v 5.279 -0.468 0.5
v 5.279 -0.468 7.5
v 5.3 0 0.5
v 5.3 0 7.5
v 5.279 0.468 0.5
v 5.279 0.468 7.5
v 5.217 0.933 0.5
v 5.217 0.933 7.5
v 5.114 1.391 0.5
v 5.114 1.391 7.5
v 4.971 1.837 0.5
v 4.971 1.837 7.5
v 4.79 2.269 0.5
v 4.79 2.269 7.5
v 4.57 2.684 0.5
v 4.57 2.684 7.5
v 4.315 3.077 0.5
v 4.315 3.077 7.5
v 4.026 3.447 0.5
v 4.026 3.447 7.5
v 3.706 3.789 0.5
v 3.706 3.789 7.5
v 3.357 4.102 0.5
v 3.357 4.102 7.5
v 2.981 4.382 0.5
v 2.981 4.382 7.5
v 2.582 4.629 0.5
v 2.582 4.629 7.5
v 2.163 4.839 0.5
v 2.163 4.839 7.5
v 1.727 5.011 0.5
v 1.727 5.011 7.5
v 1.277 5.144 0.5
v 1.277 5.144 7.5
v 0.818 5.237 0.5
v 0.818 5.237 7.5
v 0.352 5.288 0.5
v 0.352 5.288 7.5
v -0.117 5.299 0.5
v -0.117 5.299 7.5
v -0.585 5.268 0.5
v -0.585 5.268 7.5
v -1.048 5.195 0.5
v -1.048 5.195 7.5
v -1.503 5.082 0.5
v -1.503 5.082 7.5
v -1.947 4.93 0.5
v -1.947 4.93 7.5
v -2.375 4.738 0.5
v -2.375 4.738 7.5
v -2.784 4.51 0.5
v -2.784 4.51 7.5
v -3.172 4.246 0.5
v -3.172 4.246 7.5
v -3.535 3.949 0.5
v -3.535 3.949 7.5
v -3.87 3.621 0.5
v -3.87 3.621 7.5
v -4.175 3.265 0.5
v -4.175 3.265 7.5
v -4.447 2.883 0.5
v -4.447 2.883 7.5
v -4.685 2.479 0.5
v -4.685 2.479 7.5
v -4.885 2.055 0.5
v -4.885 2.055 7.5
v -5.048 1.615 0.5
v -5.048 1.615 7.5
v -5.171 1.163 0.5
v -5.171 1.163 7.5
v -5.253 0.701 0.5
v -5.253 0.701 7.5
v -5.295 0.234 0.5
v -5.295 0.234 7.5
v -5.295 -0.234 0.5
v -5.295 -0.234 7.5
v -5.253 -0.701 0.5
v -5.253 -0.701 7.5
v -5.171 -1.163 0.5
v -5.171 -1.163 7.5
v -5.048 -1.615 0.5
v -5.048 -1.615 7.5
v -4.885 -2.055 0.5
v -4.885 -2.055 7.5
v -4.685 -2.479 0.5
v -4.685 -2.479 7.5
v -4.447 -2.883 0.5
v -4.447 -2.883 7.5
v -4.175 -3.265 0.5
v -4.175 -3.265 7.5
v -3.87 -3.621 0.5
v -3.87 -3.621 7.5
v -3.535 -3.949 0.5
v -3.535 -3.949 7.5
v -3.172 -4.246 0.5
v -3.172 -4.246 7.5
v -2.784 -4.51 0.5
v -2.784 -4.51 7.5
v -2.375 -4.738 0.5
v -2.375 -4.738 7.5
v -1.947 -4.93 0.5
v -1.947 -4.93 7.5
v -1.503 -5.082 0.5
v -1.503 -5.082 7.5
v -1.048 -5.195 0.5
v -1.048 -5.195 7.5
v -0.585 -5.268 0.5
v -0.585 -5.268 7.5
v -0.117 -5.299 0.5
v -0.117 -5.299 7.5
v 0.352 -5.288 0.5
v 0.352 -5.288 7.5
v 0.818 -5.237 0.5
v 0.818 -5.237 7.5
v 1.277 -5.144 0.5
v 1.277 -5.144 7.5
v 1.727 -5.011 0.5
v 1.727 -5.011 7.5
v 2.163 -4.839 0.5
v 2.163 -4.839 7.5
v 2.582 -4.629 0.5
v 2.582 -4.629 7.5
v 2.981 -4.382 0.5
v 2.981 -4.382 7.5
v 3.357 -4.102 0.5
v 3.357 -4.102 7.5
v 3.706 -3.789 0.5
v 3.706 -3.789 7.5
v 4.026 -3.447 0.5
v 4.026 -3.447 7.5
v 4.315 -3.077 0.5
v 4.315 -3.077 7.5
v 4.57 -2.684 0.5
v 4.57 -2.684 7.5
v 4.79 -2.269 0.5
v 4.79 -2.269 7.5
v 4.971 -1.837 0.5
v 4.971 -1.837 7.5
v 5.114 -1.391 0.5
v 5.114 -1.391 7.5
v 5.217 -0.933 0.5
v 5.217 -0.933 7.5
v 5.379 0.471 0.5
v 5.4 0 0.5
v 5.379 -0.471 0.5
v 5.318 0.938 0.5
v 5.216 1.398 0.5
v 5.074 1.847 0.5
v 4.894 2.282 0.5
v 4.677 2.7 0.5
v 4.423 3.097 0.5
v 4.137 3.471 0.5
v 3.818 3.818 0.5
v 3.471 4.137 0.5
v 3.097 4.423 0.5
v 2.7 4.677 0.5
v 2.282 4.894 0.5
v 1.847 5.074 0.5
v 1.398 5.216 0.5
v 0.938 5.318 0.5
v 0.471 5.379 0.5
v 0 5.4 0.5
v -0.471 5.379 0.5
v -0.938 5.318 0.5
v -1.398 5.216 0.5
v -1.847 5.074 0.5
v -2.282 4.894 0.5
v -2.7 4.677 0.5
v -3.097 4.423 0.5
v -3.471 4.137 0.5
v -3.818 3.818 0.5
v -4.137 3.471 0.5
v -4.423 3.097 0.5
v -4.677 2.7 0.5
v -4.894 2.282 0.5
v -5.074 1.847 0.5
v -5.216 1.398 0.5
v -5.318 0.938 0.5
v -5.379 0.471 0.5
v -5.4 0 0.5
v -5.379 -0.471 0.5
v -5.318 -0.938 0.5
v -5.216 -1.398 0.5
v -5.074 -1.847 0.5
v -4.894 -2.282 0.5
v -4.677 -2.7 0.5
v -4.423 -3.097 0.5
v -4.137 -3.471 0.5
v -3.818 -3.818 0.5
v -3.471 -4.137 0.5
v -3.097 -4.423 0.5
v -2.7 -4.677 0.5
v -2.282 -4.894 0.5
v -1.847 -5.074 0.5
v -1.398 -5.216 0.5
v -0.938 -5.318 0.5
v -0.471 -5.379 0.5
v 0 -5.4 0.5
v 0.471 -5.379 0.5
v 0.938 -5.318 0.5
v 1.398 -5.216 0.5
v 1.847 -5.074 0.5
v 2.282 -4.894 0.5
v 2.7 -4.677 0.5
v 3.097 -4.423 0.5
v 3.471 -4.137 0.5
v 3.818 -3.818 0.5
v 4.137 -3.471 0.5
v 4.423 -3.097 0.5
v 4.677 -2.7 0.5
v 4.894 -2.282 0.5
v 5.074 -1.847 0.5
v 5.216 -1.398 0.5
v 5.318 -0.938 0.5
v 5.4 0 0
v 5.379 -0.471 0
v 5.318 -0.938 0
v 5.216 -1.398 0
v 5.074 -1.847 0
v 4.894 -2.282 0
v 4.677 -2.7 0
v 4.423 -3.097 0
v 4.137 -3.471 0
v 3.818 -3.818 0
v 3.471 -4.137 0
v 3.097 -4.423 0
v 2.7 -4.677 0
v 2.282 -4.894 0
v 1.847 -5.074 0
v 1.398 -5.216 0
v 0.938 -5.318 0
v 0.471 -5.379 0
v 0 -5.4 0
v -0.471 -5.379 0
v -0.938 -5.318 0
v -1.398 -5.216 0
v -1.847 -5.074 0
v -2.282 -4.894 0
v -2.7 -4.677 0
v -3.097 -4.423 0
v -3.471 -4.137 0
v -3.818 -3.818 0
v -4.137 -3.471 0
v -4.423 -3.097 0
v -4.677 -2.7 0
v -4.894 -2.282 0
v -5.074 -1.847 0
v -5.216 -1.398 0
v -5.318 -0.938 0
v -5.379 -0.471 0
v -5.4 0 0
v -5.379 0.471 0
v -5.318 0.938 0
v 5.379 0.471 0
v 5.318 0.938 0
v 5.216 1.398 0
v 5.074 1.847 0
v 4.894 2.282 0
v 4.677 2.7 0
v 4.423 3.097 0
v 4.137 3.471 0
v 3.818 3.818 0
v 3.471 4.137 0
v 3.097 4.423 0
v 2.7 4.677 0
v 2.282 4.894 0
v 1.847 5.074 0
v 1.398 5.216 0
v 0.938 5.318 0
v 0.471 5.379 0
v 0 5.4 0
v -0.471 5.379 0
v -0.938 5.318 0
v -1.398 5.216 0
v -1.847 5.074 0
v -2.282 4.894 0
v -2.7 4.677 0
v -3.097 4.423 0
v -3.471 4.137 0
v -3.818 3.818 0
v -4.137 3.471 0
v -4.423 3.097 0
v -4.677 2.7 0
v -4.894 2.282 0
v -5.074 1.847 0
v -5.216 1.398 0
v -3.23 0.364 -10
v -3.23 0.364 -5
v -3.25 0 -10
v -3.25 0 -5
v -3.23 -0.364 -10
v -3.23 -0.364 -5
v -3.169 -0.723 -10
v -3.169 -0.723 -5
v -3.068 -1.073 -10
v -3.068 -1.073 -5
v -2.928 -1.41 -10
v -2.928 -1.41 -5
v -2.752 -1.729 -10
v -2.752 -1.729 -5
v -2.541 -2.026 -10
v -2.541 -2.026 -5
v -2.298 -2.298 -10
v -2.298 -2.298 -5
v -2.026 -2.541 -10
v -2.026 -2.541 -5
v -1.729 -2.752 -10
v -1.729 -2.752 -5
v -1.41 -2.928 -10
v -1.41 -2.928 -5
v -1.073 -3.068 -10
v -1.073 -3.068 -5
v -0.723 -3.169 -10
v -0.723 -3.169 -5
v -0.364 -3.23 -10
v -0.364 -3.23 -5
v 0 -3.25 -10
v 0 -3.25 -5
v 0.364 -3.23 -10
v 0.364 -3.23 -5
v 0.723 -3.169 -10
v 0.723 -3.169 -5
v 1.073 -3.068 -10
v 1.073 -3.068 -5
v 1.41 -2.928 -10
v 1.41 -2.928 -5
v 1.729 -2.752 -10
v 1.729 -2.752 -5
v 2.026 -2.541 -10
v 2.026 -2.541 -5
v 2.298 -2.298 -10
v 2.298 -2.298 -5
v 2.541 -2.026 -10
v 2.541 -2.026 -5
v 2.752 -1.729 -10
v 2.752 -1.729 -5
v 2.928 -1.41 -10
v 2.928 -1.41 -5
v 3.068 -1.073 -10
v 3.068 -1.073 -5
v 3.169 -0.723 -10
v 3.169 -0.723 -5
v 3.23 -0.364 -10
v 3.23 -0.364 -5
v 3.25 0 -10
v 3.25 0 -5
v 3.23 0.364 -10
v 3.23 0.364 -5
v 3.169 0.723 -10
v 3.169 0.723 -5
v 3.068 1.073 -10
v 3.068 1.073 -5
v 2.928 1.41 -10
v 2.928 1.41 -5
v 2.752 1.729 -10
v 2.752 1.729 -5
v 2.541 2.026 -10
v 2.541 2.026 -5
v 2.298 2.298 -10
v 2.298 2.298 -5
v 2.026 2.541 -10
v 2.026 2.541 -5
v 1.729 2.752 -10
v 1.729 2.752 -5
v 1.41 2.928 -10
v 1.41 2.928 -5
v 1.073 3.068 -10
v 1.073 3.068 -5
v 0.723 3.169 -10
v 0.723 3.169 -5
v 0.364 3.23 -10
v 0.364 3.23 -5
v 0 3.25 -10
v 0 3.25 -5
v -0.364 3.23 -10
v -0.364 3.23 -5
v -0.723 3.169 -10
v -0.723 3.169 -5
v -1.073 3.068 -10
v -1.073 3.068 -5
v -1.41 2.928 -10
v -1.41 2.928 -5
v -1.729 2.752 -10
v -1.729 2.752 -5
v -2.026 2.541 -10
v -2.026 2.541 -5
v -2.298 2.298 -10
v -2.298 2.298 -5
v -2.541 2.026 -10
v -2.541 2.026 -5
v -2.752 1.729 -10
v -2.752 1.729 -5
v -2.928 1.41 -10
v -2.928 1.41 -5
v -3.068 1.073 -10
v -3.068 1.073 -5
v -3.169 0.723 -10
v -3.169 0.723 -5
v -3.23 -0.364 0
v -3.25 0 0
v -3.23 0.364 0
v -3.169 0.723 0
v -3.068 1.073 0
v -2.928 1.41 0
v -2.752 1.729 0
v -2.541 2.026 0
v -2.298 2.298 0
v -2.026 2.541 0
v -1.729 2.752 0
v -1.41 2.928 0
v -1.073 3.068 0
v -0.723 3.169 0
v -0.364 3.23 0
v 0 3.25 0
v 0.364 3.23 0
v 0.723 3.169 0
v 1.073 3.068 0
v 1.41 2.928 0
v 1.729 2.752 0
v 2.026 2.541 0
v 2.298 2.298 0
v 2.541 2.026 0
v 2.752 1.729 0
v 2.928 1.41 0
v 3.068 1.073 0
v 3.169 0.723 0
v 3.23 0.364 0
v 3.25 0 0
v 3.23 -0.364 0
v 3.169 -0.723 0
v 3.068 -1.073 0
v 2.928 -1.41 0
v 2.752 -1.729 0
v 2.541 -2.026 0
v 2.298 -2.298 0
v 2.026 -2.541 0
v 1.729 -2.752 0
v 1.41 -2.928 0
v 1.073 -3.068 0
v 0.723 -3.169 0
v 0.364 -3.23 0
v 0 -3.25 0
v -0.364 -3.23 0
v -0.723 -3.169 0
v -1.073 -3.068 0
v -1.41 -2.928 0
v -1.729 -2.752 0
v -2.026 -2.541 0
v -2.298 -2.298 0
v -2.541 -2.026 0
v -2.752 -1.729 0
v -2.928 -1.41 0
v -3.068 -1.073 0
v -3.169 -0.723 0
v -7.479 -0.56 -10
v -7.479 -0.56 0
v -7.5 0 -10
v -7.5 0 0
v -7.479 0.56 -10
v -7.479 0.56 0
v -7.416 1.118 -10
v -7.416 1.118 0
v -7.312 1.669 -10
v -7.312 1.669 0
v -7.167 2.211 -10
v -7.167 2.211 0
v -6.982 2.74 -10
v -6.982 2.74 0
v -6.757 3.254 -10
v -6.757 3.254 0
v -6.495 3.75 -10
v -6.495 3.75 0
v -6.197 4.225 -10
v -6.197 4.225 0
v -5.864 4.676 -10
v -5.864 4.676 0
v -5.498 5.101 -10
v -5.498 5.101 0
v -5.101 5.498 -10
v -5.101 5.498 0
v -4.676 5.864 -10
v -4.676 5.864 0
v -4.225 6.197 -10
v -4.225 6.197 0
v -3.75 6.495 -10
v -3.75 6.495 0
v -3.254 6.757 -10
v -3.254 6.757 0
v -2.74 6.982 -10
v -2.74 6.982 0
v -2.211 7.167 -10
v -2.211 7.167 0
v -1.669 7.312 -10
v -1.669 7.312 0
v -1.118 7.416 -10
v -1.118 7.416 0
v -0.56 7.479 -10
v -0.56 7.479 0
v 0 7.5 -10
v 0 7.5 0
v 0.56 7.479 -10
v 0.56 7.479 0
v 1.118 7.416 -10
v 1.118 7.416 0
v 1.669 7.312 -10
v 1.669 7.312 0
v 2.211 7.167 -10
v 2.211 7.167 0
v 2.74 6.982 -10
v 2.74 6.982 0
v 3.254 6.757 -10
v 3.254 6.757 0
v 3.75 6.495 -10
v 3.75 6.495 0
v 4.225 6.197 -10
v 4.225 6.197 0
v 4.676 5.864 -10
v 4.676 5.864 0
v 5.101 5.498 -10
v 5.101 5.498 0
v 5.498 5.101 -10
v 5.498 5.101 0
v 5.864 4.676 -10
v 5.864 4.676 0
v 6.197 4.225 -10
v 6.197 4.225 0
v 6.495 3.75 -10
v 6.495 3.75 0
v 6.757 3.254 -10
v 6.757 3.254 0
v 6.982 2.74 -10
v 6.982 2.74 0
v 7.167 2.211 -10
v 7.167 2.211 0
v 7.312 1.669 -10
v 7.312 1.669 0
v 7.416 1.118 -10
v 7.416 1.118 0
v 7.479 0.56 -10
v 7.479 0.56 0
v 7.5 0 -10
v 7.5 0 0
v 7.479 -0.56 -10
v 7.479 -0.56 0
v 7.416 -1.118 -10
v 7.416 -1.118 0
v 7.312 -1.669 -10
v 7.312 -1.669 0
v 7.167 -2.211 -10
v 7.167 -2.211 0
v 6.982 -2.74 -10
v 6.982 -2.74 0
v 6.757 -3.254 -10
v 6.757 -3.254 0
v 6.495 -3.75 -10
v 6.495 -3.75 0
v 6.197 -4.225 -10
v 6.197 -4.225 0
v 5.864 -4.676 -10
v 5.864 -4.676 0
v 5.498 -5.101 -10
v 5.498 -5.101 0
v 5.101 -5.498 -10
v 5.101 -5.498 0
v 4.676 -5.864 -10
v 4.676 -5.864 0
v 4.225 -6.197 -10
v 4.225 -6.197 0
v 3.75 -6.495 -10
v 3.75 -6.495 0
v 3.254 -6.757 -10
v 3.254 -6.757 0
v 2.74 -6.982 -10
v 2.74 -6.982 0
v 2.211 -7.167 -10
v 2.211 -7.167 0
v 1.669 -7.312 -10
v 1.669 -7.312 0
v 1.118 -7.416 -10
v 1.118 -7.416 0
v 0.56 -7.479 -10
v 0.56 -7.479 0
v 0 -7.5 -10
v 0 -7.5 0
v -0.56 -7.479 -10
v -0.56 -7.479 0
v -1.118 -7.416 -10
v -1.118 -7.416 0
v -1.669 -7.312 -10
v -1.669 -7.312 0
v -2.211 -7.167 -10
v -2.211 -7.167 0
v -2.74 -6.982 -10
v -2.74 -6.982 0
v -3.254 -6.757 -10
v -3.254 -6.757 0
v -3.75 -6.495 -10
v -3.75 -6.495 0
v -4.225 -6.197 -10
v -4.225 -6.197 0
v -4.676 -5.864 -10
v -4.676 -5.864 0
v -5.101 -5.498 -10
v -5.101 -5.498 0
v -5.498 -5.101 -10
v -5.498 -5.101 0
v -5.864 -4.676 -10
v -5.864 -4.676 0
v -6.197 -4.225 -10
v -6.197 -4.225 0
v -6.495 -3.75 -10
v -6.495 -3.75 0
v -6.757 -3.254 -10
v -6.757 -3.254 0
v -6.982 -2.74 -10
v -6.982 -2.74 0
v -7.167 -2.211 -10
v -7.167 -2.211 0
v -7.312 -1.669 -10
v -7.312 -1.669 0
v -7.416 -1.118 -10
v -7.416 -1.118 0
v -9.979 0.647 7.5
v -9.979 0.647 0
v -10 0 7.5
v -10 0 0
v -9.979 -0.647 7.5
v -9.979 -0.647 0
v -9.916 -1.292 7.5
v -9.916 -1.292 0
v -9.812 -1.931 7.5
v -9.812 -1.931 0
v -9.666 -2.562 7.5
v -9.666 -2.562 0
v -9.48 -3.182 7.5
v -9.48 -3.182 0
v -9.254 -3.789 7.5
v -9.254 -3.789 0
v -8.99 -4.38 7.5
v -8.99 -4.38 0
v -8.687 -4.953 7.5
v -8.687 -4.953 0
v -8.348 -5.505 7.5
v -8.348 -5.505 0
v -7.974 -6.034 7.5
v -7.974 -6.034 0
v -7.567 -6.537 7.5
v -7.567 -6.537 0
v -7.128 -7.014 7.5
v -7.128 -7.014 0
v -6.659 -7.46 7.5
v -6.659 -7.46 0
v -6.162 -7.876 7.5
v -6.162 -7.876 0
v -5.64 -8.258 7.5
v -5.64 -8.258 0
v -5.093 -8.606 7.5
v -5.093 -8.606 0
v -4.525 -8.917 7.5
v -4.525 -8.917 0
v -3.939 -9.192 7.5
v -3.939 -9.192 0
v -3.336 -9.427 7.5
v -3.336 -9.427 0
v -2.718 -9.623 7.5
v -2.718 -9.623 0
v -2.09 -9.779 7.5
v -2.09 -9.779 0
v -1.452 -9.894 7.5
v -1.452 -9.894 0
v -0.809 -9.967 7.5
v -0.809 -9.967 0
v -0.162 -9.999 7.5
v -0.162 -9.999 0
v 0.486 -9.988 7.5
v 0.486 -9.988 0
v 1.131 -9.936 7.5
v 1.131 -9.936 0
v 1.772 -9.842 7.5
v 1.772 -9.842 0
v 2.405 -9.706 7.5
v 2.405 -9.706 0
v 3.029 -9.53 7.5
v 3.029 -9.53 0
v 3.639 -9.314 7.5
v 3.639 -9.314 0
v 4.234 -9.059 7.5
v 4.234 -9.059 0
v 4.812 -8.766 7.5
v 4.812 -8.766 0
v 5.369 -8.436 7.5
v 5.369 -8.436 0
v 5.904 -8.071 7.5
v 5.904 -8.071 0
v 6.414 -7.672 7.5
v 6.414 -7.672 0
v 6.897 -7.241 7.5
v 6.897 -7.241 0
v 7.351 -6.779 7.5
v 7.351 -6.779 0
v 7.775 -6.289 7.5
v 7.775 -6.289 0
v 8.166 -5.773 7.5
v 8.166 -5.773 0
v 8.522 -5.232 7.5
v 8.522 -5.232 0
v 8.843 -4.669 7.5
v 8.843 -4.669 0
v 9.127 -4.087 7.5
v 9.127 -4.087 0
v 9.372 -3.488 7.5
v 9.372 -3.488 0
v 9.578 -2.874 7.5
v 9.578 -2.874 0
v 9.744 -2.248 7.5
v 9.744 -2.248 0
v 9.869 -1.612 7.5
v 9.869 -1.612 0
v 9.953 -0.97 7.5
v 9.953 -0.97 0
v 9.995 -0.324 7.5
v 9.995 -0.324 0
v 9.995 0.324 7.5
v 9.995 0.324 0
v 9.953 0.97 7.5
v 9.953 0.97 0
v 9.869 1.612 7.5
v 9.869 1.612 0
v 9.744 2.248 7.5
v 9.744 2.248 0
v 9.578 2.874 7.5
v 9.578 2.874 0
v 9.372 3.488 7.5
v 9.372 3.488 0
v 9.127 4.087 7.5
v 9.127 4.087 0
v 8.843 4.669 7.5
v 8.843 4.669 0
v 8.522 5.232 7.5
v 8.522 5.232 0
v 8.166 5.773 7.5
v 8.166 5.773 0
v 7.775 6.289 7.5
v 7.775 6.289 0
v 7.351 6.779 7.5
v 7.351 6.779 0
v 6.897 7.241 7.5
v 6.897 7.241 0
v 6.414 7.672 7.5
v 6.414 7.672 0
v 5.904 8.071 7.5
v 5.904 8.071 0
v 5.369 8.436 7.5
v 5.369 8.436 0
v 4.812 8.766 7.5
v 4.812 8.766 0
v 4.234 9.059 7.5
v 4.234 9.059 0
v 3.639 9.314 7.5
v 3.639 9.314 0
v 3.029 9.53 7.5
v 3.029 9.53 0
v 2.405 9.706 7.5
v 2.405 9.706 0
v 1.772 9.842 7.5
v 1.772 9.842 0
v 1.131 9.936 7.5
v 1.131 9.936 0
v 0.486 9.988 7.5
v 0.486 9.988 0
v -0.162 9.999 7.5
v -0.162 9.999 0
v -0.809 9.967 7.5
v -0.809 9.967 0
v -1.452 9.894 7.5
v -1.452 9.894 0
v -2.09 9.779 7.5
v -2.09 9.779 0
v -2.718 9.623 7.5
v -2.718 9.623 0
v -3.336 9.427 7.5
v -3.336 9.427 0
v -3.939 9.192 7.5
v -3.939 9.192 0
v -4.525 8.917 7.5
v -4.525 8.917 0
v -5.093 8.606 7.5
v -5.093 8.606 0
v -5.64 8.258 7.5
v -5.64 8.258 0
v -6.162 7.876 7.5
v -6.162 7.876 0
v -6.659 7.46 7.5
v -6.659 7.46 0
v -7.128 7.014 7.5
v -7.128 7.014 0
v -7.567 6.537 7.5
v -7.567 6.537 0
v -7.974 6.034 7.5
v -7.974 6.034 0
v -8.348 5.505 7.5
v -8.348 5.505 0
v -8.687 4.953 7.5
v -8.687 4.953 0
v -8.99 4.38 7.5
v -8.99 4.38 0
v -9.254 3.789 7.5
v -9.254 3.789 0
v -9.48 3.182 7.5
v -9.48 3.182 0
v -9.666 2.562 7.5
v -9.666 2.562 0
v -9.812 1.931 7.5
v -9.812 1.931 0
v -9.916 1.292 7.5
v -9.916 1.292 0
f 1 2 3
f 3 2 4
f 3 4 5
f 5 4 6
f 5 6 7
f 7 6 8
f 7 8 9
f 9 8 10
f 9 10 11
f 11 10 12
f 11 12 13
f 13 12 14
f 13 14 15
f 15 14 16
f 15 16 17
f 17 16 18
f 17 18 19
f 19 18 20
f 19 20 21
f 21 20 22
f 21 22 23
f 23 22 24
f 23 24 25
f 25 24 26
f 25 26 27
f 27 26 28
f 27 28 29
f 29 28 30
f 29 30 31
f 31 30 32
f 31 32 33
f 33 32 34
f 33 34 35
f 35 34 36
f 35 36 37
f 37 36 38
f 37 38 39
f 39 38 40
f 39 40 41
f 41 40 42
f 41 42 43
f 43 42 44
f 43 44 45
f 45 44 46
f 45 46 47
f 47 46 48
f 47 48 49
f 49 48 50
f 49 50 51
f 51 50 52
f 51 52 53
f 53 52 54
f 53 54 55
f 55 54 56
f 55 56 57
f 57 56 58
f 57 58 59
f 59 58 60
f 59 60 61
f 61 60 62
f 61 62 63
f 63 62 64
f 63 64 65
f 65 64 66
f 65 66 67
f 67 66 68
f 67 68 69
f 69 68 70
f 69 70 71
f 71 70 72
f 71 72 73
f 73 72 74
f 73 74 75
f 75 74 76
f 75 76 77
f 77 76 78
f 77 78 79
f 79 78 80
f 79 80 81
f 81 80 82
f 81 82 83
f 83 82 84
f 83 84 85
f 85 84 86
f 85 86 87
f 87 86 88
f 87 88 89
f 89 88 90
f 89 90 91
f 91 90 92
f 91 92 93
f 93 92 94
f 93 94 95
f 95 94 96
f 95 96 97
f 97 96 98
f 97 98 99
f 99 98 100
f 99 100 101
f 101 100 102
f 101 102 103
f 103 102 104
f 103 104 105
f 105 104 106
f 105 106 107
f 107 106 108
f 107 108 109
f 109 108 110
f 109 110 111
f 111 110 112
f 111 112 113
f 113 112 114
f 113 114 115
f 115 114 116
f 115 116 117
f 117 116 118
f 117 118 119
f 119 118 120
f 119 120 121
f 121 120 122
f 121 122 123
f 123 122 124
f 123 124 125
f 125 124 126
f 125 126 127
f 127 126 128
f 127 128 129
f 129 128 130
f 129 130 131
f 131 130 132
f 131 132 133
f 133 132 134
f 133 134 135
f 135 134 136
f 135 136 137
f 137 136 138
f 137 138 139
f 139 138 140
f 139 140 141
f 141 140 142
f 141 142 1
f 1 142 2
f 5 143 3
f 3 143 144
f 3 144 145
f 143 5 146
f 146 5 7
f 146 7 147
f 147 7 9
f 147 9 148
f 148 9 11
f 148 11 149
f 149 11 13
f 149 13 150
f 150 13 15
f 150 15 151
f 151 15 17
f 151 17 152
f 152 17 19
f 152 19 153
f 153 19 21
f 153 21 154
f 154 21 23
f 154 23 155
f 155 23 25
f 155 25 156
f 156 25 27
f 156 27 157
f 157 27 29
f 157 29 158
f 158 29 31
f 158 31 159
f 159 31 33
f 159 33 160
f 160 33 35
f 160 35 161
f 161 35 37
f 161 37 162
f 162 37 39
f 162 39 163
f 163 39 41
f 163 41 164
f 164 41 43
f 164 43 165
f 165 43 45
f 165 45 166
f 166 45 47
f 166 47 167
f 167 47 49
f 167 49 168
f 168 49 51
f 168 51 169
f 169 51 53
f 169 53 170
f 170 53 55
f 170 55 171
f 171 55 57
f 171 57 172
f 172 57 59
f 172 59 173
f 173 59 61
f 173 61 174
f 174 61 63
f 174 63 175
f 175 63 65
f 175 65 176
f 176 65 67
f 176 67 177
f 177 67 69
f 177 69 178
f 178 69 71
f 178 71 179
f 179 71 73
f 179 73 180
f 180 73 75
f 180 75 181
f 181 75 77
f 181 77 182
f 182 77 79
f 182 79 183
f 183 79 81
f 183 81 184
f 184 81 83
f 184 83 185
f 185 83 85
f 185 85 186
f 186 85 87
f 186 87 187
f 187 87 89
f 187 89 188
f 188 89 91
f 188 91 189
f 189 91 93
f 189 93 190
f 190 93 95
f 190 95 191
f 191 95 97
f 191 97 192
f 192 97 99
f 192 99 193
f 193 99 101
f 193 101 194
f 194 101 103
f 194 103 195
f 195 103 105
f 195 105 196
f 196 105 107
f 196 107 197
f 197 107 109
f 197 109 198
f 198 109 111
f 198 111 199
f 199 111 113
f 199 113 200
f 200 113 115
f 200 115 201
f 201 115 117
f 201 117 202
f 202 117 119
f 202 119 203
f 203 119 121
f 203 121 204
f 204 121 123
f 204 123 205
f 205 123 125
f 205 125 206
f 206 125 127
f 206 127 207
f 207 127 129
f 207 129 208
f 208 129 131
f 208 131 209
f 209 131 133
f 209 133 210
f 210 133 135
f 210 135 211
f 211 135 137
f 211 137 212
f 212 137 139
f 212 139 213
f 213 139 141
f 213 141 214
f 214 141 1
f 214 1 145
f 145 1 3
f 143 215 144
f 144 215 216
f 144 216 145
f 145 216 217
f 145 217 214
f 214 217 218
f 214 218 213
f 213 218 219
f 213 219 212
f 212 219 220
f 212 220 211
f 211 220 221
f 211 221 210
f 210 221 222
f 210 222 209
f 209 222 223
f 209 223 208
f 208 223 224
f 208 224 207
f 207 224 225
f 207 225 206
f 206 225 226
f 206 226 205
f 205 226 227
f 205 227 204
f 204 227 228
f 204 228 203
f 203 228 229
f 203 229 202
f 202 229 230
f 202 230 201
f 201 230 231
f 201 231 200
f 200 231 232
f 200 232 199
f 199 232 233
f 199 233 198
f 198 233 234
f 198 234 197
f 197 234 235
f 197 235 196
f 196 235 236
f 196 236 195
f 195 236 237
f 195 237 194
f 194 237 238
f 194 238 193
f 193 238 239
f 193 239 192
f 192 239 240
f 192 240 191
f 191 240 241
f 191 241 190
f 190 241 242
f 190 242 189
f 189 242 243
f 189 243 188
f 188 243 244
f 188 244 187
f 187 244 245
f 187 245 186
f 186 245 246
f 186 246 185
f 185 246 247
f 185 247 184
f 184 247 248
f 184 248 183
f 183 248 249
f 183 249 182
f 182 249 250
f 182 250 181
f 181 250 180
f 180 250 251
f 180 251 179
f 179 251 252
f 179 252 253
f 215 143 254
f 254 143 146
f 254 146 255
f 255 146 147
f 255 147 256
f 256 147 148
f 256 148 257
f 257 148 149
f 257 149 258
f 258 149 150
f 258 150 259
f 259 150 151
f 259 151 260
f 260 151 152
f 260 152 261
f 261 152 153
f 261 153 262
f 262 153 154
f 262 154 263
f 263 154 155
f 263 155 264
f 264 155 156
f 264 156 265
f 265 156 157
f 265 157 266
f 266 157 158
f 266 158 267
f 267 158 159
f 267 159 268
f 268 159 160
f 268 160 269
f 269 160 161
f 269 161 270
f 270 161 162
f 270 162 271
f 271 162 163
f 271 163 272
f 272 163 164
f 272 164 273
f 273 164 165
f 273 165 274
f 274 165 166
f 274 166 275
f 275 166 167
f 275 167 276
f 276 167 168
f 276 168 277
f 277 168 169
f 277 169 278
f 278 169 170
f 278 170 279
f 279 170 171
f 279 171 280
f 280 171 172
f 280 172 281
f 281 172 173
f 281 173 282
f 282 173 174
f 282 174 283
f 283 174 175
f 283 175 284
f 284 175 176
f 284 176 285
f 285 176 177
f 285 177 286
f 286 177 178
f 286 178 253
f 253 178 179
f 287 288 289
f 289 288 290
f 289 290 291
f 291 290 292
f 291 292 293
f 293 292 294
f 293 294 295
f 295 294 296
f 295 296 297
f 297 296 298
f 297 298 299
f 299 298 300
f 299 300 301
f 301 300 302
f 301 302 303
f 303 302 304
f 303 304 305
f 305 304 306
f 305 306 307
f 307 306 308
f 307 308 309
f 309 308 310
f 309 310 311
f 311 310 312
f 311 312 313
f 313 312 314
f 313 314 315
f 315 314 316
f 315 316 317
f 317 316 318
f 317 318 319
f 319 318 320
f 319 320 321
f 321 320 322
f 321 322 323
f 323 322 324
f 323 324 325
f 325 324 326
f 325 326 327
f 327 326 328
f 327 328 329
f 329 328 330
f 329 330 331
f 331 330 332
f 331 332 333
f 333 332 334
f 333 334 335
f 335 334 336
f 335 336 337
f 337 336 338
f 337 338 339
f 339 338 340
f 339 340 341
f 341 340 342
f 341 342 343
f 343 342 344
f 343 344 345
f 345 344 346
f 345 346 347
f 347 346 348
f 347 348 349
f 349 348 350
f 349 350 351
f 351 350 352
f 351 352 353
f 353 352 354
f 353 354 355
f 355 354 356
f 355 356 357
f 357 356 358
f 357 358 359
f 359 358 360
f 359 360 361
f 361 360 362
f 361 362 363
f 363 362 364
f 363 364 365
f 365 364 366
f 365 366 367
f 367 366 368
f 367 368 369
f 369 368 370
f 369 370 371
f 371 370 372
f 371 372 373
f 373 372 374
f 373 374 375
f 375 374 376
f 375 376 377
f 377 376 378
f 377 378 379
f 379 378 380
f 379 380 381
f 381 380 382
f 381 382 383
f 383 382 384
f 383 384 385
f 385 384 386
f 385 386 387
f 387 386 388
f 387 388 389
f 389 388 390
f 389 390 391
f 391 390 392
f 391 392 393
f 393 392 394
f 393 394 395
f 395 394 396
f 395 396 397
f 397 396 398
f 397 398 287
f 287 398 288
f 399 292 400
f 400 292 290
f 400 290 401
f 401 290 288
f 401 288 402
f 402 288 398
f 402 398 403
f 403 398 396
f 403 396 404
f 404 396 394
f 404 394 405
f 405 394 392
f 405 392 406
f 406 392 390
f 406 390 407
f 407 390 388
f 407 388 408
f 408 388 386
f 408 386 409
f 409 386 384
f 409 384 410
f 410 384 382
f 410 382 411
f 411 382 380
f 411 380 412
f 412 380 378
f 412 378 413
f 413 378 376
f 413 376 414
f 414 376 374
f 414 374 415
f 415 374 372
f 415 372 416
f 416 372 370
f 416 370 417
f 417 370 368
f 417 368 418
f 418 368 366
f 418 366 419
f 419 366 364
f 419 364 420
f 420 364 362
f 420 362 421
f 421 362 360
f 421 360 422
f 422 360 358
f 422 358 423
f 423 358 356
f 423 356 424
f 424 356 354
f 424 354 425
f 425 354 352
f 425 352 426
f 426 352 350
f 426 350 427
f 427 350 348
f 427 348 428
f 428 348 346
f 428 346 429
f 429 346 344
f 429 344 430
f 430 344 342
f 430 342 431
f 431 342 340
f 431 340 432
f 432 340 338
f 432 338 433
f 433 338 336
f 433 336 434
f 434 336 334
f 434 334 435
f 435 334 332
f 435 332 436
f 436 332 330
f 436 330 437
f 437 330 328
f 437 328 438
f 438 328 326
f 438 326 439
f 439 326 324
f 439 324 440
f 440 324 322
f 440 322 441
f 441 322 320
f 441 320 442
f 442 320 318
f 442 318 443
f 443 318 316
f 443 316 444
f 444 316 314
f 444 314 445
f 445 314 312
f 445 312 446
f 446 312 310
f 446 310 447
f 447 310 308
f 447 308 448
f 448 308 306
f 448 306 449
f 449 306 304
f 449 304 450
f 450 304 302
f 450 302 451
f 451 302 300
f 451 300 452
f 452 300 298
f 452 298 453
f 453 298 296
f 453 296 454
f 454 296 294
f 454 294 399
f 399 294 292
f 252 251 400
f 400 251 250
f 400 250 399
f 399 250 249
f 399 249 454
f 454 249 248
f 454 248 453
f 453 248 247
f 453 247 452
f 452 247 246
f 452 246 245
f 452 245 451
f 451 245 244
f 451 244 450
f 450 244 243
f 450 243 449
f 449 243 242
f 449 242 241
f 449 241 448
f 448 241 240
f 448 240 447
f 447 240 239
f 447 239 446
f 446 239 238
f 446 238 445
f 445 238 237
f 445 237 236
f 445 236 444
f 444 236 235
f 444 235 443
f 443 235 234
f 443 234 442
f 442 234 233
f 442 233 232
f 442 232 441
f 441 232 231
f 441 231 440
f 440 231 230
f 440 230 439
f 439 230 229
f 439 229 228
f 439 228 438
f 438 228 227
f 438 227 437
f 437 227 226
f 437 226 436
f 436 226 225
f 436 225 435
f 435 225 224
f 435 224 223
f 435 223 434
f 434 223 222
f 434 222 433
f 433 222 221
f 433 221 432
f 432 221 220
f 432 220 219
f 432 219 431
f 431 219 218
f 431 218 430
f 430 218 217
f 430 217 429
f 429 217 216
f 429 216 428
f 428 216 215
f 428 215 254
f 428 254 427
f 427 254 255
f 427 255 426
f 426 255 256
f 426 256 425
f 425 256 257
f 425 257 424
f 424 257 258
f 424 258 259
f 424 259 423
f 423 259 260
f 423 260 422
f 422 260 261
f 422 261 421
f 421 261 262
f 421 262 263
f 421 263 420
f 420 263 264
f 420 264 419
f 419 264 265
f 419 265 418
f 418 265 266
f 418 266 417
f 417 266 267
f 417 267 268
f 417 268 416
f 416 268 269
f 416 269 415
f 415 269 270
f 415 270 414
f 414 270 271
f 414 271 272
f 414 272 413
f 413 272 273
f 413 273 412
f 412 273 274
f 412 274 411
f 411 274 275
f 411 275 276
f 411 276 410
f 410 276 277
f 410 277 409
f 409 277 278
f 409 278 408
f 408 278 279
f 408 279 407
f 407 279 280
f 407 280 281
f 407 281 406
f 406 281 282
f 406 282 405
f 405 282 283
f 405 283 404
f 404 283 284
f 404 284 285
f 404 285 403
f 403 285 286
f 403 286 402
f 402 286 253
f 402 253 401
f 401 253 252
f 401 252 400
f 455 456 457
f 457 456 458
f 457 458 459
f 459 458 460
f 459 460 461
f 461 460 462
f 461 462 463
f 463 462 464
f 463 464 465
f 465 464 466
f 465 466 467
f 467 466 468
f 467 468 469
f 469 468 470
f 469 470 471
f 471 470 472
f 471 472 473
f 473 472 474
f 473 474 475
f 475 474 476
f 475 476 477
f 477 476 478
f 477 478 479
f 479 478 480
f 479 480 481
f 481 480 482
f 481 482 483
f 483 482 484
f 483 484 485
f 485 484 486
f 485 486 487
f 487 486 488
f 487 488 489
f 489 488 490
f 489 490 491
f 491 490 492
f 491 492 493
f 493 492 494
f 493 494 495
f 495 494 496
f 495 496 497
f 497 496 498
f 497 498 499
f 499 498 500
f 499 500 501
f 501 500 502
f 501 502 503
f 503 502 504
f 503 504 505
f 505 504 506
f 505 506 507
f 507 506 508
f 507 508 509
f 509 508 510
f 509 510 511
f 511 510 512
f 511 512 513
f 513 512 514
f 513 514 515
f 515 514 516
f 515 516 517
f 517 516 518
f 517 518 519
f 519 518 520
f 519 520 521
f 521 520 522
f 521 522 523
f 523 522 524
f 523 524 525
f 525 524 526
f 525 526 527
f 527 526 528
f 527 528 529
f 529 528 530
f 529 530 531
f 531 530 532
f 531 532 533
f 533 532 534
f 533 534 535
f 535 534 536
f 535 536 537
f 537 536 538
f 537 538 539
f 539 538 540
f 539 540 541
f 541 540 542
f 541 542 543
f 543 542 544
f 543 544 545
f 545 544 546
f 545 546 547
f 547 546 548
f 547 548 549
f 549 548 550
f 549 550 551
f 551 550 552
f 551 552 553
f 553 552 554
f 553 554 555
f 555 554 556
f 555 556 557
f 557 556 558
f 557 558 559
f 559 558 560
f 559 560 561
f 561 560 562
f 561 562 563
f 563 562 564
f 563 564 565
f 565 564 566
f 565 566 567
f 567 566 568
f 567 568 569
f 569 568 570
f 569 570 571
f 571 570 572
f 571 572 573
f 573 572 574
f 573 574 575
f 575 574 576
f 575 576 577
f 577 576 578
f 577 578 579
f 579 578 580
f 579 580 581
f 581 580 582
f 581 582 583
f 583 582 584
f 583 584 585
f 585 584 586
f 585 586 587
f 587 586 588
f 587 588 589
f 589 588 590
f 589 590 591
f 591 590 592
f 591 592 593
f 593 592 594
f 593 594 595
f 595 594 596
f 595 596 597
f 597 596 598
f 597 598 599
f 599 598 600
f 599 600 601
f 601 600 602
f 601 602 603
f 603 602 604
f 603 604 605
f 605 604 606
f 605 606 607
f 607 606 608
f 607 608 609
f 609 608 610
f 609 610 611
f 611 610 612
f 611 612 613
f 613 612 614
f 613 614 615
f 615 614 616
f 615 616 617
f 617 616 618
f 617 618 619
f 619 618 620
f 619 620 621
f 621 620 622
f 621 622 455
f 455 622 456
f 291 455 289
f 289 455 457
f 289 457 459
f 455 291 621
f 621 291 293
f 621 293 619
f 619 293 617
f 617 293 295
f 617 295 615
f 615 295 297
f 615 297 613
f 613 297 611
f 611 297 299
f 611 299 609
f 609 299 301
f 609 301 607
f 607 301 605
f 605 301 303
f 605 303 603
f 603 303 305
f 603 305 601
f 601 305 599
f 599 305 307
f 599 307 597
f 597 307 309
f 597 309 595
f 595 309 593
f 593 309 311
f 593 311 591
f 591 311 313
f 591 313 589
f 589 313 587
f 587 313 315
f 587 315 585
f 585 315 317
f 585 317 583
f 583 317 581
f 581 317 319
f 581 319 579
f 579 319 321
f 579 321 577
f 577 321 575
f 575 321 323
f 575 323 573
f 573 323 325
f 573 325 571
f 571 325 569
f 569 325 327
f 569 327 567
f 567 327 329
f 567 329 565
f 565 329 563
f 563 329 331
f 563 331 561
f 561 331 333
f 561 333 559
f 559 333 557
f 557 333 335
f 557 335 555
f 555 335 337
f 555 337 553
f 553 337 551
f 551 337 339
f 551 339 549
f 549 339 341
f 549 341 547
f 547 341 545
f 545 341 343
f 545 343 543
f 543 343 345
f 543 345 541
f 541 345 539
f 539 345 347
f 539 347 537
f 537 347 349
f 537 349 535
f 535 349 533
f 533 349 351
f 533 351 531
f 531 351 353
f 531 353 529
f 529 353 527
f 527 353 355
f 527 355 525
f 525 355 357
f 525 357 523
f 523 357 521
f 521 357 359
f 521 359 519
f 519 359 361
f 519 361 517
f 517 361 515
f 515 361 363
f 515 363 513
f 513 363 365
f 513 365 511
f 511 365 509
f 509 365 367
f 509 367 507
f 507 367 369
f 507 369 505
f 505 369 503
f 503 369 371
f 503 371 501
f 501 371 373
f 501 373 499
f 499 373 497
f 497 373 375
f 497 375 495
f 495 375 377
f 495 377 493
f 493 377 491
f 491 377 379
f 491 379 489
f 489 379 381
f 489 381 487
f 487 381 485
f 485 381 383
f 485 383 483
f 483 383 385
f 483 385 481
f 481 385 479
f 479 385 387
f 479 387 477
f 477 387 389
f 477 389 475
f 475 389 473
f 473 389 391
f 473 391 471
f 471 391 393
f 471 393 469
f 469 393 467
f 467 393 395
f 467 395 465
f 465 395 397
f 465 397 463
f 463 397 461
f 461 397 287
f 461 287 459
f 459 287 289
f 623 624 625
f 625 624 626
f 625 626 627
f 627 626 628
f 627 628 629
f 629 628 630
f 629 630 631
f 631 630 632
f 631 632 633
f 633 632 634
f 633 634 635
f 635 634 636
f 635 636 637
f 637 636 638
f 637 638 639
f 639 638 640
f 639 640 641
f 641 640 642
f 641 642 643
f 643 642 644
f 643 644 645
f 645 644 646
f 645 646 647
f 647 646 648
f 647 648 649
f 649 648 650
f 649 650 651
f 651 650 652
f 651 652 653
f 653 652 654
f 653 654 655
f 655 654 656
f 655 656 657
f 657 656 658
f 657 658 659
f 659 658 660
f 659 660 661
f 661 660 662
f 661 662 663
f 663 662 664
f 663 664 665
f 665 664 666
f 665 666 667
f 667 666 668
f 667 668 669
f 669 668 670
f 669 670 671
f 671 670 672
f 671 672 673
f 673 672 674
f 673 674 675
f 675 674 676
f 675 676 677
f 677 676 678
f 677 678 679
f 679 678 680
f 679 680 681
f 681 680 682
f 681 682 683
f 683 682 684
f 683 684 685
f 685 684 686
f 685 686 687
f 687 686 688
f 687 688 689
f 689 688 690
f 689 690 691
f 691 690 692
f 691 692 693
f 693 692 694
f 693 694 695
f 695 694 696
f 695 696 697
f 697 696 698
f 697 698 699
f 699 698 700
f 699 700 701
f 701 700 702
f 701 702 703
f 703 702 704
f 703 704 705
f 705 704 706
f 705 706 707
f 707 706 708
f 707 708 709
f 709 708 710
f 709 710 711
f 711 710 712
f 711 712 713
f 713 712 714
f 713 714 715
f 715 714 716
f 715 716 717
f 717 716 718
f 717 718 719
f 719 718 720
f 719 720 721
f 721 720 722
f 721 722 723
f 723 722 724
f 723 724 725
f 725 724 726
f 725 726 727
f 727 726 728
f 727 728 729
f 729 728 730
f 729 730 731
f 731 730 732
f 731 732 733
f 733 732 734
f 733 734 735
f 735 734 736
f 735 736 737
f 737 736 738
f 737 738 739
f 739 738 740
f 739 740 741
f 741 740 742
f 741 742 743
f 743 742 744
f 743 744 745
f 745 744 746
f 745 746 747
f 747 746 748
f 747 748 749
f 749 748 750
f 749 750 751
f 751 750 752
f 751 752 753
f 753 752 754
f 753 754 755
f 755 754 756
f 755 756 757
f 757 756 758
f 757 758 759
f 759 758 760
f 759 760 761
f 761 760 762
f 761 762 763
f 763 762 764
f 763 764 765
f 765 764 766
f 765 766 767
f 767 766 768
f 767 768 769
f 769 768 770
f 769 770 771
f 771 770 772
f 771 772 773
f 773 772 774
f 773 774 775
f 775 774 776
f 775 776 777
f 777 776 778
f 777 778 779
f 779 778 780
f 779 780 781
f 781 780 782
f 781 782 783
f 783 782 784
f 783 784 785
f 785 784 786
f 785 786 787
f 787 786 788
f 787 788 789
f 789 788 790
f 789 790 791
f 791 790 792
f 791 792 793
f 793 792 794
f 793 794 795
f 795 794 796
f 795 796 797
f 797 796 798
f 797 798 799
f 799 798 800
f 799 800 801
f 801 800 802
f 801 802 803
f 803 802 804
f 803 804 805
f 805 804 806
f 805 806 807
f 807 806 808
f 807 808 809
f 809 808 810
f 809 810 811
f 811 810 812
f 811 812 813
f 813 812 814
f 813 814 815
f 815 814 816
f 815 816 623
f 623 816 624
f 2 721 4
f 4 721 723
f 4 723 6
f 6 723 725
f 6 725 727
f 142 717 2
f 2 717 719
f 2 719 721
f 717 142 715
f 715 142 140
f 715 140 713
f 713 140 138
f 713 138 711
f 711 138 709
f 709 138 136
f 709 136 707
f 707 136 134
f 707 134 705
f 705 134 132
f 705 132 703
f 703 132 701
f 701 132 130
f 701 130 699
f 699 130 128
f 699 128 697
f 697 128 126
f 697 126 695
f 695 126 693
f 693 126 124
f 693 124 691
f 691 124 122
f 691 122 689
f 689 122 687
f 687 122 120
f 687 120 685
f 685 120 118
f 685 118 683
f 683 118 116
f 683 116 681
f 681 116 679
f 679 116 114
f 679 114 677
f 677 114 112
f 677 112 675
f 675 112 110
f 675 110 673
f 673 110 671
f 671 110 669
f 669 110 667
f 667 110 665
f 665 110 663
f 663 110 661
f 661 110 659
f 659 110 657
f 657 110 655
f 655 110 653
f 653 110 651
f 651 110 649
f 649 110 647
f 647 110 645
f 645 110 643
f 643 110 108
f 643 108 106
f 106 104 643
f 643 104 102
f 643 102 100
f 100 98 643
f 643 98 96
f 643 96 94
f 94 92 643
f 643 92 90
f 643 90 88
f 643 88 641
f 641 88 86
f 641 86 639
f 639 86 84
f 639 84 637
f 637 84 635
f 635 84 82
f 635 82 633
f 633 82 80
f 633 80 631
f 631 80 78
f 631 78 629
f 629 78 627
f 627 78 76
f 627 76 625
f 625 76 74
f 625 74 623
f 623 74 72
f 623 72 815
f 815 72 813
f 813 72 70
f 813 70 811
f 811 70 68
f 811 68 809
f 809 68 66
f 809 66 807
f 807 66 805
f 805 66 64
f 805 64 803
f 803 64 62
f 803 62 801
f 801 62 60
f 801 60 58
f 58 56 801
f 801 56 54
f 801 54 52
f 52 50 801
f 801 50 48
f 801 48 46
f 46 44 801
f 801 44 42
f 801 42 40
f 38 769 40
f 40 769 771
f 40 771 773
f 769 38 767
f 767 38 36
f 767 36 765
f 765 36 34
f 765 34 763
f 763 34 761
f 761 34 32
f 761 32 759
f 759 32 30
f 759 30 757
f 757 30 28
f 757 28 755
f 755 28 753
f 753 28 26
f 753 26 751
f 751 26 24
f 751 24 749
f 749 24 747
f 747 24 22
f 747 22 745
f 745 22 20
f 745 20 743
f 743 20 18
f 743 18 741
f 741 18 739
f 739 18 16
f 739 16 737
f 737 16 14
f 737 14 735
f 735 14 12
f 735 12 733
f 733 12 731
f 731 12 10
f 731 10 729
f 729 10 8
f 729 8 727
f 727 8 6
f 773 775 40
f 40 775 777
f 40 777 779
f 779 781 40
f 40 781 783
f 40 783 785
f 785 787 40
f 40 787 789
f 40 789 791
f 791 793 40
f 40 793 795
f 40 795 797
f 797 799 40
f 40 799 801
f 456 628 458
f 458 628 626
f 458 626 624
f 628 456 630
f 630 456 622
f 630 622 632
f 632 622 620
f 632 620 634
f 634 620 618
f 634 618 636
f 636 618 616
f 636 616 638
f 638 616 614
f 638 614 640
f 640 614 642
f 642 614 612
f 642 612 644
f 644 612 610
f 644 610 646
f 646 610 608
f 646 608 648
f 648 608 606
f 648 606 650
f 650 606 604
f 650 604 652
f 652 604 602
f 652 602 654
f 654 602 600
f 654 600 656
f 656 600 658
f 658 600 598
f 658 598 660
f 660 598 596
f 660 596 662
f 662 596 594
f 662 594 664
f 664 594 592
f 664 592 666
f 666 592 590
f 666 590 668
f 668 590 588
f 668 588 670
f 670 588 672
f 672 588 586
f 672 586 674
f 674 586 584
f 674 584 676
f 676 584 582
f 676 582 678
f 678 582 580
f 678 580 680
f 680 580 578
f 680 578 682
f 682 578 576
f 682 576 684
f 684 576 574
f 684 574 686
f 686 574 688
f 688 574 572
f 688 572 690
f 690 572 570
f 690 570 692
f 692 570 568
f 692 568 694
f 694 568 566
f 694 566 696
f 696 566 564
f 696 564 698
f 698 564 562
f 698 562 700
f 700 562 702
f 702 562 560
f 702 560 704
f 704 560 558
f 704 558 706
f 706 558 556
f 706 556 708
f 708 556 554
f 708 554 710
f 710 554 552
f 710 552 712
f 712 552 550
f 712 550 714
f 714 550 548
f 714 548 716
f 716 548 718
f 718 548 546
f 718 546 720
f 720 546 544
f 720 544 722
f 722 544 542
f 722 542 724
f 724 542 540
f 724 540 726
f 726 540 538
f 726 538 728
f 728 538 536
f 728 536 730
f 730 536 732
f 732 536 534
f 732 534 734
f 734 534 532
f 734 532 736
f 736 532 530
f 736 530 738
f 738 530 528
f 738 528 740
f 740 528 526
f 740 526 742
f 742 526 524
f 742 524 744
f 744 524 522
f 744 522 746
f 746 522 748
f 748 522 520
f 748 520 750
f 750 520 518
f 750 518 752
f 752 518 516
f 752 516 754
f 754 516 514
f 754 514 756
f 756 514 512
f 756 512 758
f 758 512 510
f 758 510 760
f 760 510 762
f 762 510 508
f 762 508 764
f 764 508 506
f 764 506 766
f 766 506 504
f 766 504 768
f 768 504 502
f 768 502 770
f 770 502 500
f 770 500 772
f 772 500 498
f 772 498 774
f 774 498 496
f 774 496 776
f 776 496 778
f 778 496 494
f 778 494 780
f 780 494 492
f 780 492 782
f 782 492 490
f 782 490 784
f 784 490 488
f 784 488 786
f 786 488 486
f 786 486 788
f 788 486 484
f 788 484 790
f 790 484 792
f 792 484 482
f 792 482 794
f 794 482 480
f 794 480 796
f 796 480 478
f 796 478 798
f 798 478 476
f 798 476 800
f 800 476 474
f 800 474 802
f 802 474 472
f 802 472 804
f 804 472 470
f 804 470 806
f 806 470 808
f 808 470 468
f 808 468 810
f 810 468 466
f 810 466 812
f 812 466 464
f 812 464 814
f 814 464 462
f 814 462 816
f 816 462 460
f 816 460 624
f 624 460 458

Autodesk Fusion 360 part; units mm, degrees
sketch "Sketch1" plane through (0, 0, 0) normal (0, 0, 1) x (1, 0, 0)
  circle A0 centre (0, 0) radius 5
  circle A1 centre (0, 0) radius 10
  dimension "d1" = 10
  dimension "d2" = 20
extrude "Extrude1" add sketch "Sketch1" along normal blind 7.5
sketch "Sketch2" plane through (0, 0, 0) normal (0, 0, 1) x (1, 0, 0)
  circle A0 centre (0, 0) radius 3.05
  circle A1 centre (0, 0) radius 7.5
  dimension "d5" = 6.1
  dimension "d6" = 15
extrude "Extrude2" add sketch "Sketch2" against normal blind 10
sketch "草图3" plane through (0, 0, 0) normal (0, 0, 1) x (1, 0, 0)
  circle A0 centre (0, 0) radius 6
  dimension "d9" = 12
extrude "拉伸3" cut sketch "草图3" along normal blind 8
sketch "草图4" plane through (0, 0, 0) normal (0, 0, 1) x (1, 0, 0)
  circle A0 centre (0, 0) radius 3.25
  dimension "d12" = 6.5
extrude "拉伸4" cut sketch "草图4" against normal blind 10
sketch "草图5" plane through (0, 0, 0) normal (0, 0, 1) x (1, 0, 0)
  circle A0 centre (0, 0) radius 5.75
  circle A1 centre (0, 0) radius 6
  dimension "d15" = 11.5
extrude "拉伸5" add sketch "草图5" along normal blind 7.5
sketch "草图6" plane through (0, 0, 0) normal (0, 0, 1) x (1, 0, 0)
  circle A0 centre (0, 0) radius 5.4
  circle A1 centre (0, 0) radius 5.75
  dimension "d18" = 10.8
  dimension "d19" = 11.5
extrude "拉伸6" add sketch "草图6" along normal blind 7.5
sketch "草图7" plane through (0, 0, 7.5) normal (0, 0, 1) x (-1, 0, 0)
  circle A0 centre (0, 0) radius 5.4
  circle A1 centre (0, 0) radius 10
extrude "拉伸7" add sketch "草图7" against normal blind 7 contours A0
sketch "草图8" plane through (0, 0, 7.5) normal (0, 0, 1) x (-1, 0, 0)
  circle A0 centre (0, 0) radius 10
  circle A1 centre (0, 0) radius 5.3
  dimension "d24" = 10.6
extrude "拉伸8" cut sketch "草图8" against normal blind 7 contours A1
